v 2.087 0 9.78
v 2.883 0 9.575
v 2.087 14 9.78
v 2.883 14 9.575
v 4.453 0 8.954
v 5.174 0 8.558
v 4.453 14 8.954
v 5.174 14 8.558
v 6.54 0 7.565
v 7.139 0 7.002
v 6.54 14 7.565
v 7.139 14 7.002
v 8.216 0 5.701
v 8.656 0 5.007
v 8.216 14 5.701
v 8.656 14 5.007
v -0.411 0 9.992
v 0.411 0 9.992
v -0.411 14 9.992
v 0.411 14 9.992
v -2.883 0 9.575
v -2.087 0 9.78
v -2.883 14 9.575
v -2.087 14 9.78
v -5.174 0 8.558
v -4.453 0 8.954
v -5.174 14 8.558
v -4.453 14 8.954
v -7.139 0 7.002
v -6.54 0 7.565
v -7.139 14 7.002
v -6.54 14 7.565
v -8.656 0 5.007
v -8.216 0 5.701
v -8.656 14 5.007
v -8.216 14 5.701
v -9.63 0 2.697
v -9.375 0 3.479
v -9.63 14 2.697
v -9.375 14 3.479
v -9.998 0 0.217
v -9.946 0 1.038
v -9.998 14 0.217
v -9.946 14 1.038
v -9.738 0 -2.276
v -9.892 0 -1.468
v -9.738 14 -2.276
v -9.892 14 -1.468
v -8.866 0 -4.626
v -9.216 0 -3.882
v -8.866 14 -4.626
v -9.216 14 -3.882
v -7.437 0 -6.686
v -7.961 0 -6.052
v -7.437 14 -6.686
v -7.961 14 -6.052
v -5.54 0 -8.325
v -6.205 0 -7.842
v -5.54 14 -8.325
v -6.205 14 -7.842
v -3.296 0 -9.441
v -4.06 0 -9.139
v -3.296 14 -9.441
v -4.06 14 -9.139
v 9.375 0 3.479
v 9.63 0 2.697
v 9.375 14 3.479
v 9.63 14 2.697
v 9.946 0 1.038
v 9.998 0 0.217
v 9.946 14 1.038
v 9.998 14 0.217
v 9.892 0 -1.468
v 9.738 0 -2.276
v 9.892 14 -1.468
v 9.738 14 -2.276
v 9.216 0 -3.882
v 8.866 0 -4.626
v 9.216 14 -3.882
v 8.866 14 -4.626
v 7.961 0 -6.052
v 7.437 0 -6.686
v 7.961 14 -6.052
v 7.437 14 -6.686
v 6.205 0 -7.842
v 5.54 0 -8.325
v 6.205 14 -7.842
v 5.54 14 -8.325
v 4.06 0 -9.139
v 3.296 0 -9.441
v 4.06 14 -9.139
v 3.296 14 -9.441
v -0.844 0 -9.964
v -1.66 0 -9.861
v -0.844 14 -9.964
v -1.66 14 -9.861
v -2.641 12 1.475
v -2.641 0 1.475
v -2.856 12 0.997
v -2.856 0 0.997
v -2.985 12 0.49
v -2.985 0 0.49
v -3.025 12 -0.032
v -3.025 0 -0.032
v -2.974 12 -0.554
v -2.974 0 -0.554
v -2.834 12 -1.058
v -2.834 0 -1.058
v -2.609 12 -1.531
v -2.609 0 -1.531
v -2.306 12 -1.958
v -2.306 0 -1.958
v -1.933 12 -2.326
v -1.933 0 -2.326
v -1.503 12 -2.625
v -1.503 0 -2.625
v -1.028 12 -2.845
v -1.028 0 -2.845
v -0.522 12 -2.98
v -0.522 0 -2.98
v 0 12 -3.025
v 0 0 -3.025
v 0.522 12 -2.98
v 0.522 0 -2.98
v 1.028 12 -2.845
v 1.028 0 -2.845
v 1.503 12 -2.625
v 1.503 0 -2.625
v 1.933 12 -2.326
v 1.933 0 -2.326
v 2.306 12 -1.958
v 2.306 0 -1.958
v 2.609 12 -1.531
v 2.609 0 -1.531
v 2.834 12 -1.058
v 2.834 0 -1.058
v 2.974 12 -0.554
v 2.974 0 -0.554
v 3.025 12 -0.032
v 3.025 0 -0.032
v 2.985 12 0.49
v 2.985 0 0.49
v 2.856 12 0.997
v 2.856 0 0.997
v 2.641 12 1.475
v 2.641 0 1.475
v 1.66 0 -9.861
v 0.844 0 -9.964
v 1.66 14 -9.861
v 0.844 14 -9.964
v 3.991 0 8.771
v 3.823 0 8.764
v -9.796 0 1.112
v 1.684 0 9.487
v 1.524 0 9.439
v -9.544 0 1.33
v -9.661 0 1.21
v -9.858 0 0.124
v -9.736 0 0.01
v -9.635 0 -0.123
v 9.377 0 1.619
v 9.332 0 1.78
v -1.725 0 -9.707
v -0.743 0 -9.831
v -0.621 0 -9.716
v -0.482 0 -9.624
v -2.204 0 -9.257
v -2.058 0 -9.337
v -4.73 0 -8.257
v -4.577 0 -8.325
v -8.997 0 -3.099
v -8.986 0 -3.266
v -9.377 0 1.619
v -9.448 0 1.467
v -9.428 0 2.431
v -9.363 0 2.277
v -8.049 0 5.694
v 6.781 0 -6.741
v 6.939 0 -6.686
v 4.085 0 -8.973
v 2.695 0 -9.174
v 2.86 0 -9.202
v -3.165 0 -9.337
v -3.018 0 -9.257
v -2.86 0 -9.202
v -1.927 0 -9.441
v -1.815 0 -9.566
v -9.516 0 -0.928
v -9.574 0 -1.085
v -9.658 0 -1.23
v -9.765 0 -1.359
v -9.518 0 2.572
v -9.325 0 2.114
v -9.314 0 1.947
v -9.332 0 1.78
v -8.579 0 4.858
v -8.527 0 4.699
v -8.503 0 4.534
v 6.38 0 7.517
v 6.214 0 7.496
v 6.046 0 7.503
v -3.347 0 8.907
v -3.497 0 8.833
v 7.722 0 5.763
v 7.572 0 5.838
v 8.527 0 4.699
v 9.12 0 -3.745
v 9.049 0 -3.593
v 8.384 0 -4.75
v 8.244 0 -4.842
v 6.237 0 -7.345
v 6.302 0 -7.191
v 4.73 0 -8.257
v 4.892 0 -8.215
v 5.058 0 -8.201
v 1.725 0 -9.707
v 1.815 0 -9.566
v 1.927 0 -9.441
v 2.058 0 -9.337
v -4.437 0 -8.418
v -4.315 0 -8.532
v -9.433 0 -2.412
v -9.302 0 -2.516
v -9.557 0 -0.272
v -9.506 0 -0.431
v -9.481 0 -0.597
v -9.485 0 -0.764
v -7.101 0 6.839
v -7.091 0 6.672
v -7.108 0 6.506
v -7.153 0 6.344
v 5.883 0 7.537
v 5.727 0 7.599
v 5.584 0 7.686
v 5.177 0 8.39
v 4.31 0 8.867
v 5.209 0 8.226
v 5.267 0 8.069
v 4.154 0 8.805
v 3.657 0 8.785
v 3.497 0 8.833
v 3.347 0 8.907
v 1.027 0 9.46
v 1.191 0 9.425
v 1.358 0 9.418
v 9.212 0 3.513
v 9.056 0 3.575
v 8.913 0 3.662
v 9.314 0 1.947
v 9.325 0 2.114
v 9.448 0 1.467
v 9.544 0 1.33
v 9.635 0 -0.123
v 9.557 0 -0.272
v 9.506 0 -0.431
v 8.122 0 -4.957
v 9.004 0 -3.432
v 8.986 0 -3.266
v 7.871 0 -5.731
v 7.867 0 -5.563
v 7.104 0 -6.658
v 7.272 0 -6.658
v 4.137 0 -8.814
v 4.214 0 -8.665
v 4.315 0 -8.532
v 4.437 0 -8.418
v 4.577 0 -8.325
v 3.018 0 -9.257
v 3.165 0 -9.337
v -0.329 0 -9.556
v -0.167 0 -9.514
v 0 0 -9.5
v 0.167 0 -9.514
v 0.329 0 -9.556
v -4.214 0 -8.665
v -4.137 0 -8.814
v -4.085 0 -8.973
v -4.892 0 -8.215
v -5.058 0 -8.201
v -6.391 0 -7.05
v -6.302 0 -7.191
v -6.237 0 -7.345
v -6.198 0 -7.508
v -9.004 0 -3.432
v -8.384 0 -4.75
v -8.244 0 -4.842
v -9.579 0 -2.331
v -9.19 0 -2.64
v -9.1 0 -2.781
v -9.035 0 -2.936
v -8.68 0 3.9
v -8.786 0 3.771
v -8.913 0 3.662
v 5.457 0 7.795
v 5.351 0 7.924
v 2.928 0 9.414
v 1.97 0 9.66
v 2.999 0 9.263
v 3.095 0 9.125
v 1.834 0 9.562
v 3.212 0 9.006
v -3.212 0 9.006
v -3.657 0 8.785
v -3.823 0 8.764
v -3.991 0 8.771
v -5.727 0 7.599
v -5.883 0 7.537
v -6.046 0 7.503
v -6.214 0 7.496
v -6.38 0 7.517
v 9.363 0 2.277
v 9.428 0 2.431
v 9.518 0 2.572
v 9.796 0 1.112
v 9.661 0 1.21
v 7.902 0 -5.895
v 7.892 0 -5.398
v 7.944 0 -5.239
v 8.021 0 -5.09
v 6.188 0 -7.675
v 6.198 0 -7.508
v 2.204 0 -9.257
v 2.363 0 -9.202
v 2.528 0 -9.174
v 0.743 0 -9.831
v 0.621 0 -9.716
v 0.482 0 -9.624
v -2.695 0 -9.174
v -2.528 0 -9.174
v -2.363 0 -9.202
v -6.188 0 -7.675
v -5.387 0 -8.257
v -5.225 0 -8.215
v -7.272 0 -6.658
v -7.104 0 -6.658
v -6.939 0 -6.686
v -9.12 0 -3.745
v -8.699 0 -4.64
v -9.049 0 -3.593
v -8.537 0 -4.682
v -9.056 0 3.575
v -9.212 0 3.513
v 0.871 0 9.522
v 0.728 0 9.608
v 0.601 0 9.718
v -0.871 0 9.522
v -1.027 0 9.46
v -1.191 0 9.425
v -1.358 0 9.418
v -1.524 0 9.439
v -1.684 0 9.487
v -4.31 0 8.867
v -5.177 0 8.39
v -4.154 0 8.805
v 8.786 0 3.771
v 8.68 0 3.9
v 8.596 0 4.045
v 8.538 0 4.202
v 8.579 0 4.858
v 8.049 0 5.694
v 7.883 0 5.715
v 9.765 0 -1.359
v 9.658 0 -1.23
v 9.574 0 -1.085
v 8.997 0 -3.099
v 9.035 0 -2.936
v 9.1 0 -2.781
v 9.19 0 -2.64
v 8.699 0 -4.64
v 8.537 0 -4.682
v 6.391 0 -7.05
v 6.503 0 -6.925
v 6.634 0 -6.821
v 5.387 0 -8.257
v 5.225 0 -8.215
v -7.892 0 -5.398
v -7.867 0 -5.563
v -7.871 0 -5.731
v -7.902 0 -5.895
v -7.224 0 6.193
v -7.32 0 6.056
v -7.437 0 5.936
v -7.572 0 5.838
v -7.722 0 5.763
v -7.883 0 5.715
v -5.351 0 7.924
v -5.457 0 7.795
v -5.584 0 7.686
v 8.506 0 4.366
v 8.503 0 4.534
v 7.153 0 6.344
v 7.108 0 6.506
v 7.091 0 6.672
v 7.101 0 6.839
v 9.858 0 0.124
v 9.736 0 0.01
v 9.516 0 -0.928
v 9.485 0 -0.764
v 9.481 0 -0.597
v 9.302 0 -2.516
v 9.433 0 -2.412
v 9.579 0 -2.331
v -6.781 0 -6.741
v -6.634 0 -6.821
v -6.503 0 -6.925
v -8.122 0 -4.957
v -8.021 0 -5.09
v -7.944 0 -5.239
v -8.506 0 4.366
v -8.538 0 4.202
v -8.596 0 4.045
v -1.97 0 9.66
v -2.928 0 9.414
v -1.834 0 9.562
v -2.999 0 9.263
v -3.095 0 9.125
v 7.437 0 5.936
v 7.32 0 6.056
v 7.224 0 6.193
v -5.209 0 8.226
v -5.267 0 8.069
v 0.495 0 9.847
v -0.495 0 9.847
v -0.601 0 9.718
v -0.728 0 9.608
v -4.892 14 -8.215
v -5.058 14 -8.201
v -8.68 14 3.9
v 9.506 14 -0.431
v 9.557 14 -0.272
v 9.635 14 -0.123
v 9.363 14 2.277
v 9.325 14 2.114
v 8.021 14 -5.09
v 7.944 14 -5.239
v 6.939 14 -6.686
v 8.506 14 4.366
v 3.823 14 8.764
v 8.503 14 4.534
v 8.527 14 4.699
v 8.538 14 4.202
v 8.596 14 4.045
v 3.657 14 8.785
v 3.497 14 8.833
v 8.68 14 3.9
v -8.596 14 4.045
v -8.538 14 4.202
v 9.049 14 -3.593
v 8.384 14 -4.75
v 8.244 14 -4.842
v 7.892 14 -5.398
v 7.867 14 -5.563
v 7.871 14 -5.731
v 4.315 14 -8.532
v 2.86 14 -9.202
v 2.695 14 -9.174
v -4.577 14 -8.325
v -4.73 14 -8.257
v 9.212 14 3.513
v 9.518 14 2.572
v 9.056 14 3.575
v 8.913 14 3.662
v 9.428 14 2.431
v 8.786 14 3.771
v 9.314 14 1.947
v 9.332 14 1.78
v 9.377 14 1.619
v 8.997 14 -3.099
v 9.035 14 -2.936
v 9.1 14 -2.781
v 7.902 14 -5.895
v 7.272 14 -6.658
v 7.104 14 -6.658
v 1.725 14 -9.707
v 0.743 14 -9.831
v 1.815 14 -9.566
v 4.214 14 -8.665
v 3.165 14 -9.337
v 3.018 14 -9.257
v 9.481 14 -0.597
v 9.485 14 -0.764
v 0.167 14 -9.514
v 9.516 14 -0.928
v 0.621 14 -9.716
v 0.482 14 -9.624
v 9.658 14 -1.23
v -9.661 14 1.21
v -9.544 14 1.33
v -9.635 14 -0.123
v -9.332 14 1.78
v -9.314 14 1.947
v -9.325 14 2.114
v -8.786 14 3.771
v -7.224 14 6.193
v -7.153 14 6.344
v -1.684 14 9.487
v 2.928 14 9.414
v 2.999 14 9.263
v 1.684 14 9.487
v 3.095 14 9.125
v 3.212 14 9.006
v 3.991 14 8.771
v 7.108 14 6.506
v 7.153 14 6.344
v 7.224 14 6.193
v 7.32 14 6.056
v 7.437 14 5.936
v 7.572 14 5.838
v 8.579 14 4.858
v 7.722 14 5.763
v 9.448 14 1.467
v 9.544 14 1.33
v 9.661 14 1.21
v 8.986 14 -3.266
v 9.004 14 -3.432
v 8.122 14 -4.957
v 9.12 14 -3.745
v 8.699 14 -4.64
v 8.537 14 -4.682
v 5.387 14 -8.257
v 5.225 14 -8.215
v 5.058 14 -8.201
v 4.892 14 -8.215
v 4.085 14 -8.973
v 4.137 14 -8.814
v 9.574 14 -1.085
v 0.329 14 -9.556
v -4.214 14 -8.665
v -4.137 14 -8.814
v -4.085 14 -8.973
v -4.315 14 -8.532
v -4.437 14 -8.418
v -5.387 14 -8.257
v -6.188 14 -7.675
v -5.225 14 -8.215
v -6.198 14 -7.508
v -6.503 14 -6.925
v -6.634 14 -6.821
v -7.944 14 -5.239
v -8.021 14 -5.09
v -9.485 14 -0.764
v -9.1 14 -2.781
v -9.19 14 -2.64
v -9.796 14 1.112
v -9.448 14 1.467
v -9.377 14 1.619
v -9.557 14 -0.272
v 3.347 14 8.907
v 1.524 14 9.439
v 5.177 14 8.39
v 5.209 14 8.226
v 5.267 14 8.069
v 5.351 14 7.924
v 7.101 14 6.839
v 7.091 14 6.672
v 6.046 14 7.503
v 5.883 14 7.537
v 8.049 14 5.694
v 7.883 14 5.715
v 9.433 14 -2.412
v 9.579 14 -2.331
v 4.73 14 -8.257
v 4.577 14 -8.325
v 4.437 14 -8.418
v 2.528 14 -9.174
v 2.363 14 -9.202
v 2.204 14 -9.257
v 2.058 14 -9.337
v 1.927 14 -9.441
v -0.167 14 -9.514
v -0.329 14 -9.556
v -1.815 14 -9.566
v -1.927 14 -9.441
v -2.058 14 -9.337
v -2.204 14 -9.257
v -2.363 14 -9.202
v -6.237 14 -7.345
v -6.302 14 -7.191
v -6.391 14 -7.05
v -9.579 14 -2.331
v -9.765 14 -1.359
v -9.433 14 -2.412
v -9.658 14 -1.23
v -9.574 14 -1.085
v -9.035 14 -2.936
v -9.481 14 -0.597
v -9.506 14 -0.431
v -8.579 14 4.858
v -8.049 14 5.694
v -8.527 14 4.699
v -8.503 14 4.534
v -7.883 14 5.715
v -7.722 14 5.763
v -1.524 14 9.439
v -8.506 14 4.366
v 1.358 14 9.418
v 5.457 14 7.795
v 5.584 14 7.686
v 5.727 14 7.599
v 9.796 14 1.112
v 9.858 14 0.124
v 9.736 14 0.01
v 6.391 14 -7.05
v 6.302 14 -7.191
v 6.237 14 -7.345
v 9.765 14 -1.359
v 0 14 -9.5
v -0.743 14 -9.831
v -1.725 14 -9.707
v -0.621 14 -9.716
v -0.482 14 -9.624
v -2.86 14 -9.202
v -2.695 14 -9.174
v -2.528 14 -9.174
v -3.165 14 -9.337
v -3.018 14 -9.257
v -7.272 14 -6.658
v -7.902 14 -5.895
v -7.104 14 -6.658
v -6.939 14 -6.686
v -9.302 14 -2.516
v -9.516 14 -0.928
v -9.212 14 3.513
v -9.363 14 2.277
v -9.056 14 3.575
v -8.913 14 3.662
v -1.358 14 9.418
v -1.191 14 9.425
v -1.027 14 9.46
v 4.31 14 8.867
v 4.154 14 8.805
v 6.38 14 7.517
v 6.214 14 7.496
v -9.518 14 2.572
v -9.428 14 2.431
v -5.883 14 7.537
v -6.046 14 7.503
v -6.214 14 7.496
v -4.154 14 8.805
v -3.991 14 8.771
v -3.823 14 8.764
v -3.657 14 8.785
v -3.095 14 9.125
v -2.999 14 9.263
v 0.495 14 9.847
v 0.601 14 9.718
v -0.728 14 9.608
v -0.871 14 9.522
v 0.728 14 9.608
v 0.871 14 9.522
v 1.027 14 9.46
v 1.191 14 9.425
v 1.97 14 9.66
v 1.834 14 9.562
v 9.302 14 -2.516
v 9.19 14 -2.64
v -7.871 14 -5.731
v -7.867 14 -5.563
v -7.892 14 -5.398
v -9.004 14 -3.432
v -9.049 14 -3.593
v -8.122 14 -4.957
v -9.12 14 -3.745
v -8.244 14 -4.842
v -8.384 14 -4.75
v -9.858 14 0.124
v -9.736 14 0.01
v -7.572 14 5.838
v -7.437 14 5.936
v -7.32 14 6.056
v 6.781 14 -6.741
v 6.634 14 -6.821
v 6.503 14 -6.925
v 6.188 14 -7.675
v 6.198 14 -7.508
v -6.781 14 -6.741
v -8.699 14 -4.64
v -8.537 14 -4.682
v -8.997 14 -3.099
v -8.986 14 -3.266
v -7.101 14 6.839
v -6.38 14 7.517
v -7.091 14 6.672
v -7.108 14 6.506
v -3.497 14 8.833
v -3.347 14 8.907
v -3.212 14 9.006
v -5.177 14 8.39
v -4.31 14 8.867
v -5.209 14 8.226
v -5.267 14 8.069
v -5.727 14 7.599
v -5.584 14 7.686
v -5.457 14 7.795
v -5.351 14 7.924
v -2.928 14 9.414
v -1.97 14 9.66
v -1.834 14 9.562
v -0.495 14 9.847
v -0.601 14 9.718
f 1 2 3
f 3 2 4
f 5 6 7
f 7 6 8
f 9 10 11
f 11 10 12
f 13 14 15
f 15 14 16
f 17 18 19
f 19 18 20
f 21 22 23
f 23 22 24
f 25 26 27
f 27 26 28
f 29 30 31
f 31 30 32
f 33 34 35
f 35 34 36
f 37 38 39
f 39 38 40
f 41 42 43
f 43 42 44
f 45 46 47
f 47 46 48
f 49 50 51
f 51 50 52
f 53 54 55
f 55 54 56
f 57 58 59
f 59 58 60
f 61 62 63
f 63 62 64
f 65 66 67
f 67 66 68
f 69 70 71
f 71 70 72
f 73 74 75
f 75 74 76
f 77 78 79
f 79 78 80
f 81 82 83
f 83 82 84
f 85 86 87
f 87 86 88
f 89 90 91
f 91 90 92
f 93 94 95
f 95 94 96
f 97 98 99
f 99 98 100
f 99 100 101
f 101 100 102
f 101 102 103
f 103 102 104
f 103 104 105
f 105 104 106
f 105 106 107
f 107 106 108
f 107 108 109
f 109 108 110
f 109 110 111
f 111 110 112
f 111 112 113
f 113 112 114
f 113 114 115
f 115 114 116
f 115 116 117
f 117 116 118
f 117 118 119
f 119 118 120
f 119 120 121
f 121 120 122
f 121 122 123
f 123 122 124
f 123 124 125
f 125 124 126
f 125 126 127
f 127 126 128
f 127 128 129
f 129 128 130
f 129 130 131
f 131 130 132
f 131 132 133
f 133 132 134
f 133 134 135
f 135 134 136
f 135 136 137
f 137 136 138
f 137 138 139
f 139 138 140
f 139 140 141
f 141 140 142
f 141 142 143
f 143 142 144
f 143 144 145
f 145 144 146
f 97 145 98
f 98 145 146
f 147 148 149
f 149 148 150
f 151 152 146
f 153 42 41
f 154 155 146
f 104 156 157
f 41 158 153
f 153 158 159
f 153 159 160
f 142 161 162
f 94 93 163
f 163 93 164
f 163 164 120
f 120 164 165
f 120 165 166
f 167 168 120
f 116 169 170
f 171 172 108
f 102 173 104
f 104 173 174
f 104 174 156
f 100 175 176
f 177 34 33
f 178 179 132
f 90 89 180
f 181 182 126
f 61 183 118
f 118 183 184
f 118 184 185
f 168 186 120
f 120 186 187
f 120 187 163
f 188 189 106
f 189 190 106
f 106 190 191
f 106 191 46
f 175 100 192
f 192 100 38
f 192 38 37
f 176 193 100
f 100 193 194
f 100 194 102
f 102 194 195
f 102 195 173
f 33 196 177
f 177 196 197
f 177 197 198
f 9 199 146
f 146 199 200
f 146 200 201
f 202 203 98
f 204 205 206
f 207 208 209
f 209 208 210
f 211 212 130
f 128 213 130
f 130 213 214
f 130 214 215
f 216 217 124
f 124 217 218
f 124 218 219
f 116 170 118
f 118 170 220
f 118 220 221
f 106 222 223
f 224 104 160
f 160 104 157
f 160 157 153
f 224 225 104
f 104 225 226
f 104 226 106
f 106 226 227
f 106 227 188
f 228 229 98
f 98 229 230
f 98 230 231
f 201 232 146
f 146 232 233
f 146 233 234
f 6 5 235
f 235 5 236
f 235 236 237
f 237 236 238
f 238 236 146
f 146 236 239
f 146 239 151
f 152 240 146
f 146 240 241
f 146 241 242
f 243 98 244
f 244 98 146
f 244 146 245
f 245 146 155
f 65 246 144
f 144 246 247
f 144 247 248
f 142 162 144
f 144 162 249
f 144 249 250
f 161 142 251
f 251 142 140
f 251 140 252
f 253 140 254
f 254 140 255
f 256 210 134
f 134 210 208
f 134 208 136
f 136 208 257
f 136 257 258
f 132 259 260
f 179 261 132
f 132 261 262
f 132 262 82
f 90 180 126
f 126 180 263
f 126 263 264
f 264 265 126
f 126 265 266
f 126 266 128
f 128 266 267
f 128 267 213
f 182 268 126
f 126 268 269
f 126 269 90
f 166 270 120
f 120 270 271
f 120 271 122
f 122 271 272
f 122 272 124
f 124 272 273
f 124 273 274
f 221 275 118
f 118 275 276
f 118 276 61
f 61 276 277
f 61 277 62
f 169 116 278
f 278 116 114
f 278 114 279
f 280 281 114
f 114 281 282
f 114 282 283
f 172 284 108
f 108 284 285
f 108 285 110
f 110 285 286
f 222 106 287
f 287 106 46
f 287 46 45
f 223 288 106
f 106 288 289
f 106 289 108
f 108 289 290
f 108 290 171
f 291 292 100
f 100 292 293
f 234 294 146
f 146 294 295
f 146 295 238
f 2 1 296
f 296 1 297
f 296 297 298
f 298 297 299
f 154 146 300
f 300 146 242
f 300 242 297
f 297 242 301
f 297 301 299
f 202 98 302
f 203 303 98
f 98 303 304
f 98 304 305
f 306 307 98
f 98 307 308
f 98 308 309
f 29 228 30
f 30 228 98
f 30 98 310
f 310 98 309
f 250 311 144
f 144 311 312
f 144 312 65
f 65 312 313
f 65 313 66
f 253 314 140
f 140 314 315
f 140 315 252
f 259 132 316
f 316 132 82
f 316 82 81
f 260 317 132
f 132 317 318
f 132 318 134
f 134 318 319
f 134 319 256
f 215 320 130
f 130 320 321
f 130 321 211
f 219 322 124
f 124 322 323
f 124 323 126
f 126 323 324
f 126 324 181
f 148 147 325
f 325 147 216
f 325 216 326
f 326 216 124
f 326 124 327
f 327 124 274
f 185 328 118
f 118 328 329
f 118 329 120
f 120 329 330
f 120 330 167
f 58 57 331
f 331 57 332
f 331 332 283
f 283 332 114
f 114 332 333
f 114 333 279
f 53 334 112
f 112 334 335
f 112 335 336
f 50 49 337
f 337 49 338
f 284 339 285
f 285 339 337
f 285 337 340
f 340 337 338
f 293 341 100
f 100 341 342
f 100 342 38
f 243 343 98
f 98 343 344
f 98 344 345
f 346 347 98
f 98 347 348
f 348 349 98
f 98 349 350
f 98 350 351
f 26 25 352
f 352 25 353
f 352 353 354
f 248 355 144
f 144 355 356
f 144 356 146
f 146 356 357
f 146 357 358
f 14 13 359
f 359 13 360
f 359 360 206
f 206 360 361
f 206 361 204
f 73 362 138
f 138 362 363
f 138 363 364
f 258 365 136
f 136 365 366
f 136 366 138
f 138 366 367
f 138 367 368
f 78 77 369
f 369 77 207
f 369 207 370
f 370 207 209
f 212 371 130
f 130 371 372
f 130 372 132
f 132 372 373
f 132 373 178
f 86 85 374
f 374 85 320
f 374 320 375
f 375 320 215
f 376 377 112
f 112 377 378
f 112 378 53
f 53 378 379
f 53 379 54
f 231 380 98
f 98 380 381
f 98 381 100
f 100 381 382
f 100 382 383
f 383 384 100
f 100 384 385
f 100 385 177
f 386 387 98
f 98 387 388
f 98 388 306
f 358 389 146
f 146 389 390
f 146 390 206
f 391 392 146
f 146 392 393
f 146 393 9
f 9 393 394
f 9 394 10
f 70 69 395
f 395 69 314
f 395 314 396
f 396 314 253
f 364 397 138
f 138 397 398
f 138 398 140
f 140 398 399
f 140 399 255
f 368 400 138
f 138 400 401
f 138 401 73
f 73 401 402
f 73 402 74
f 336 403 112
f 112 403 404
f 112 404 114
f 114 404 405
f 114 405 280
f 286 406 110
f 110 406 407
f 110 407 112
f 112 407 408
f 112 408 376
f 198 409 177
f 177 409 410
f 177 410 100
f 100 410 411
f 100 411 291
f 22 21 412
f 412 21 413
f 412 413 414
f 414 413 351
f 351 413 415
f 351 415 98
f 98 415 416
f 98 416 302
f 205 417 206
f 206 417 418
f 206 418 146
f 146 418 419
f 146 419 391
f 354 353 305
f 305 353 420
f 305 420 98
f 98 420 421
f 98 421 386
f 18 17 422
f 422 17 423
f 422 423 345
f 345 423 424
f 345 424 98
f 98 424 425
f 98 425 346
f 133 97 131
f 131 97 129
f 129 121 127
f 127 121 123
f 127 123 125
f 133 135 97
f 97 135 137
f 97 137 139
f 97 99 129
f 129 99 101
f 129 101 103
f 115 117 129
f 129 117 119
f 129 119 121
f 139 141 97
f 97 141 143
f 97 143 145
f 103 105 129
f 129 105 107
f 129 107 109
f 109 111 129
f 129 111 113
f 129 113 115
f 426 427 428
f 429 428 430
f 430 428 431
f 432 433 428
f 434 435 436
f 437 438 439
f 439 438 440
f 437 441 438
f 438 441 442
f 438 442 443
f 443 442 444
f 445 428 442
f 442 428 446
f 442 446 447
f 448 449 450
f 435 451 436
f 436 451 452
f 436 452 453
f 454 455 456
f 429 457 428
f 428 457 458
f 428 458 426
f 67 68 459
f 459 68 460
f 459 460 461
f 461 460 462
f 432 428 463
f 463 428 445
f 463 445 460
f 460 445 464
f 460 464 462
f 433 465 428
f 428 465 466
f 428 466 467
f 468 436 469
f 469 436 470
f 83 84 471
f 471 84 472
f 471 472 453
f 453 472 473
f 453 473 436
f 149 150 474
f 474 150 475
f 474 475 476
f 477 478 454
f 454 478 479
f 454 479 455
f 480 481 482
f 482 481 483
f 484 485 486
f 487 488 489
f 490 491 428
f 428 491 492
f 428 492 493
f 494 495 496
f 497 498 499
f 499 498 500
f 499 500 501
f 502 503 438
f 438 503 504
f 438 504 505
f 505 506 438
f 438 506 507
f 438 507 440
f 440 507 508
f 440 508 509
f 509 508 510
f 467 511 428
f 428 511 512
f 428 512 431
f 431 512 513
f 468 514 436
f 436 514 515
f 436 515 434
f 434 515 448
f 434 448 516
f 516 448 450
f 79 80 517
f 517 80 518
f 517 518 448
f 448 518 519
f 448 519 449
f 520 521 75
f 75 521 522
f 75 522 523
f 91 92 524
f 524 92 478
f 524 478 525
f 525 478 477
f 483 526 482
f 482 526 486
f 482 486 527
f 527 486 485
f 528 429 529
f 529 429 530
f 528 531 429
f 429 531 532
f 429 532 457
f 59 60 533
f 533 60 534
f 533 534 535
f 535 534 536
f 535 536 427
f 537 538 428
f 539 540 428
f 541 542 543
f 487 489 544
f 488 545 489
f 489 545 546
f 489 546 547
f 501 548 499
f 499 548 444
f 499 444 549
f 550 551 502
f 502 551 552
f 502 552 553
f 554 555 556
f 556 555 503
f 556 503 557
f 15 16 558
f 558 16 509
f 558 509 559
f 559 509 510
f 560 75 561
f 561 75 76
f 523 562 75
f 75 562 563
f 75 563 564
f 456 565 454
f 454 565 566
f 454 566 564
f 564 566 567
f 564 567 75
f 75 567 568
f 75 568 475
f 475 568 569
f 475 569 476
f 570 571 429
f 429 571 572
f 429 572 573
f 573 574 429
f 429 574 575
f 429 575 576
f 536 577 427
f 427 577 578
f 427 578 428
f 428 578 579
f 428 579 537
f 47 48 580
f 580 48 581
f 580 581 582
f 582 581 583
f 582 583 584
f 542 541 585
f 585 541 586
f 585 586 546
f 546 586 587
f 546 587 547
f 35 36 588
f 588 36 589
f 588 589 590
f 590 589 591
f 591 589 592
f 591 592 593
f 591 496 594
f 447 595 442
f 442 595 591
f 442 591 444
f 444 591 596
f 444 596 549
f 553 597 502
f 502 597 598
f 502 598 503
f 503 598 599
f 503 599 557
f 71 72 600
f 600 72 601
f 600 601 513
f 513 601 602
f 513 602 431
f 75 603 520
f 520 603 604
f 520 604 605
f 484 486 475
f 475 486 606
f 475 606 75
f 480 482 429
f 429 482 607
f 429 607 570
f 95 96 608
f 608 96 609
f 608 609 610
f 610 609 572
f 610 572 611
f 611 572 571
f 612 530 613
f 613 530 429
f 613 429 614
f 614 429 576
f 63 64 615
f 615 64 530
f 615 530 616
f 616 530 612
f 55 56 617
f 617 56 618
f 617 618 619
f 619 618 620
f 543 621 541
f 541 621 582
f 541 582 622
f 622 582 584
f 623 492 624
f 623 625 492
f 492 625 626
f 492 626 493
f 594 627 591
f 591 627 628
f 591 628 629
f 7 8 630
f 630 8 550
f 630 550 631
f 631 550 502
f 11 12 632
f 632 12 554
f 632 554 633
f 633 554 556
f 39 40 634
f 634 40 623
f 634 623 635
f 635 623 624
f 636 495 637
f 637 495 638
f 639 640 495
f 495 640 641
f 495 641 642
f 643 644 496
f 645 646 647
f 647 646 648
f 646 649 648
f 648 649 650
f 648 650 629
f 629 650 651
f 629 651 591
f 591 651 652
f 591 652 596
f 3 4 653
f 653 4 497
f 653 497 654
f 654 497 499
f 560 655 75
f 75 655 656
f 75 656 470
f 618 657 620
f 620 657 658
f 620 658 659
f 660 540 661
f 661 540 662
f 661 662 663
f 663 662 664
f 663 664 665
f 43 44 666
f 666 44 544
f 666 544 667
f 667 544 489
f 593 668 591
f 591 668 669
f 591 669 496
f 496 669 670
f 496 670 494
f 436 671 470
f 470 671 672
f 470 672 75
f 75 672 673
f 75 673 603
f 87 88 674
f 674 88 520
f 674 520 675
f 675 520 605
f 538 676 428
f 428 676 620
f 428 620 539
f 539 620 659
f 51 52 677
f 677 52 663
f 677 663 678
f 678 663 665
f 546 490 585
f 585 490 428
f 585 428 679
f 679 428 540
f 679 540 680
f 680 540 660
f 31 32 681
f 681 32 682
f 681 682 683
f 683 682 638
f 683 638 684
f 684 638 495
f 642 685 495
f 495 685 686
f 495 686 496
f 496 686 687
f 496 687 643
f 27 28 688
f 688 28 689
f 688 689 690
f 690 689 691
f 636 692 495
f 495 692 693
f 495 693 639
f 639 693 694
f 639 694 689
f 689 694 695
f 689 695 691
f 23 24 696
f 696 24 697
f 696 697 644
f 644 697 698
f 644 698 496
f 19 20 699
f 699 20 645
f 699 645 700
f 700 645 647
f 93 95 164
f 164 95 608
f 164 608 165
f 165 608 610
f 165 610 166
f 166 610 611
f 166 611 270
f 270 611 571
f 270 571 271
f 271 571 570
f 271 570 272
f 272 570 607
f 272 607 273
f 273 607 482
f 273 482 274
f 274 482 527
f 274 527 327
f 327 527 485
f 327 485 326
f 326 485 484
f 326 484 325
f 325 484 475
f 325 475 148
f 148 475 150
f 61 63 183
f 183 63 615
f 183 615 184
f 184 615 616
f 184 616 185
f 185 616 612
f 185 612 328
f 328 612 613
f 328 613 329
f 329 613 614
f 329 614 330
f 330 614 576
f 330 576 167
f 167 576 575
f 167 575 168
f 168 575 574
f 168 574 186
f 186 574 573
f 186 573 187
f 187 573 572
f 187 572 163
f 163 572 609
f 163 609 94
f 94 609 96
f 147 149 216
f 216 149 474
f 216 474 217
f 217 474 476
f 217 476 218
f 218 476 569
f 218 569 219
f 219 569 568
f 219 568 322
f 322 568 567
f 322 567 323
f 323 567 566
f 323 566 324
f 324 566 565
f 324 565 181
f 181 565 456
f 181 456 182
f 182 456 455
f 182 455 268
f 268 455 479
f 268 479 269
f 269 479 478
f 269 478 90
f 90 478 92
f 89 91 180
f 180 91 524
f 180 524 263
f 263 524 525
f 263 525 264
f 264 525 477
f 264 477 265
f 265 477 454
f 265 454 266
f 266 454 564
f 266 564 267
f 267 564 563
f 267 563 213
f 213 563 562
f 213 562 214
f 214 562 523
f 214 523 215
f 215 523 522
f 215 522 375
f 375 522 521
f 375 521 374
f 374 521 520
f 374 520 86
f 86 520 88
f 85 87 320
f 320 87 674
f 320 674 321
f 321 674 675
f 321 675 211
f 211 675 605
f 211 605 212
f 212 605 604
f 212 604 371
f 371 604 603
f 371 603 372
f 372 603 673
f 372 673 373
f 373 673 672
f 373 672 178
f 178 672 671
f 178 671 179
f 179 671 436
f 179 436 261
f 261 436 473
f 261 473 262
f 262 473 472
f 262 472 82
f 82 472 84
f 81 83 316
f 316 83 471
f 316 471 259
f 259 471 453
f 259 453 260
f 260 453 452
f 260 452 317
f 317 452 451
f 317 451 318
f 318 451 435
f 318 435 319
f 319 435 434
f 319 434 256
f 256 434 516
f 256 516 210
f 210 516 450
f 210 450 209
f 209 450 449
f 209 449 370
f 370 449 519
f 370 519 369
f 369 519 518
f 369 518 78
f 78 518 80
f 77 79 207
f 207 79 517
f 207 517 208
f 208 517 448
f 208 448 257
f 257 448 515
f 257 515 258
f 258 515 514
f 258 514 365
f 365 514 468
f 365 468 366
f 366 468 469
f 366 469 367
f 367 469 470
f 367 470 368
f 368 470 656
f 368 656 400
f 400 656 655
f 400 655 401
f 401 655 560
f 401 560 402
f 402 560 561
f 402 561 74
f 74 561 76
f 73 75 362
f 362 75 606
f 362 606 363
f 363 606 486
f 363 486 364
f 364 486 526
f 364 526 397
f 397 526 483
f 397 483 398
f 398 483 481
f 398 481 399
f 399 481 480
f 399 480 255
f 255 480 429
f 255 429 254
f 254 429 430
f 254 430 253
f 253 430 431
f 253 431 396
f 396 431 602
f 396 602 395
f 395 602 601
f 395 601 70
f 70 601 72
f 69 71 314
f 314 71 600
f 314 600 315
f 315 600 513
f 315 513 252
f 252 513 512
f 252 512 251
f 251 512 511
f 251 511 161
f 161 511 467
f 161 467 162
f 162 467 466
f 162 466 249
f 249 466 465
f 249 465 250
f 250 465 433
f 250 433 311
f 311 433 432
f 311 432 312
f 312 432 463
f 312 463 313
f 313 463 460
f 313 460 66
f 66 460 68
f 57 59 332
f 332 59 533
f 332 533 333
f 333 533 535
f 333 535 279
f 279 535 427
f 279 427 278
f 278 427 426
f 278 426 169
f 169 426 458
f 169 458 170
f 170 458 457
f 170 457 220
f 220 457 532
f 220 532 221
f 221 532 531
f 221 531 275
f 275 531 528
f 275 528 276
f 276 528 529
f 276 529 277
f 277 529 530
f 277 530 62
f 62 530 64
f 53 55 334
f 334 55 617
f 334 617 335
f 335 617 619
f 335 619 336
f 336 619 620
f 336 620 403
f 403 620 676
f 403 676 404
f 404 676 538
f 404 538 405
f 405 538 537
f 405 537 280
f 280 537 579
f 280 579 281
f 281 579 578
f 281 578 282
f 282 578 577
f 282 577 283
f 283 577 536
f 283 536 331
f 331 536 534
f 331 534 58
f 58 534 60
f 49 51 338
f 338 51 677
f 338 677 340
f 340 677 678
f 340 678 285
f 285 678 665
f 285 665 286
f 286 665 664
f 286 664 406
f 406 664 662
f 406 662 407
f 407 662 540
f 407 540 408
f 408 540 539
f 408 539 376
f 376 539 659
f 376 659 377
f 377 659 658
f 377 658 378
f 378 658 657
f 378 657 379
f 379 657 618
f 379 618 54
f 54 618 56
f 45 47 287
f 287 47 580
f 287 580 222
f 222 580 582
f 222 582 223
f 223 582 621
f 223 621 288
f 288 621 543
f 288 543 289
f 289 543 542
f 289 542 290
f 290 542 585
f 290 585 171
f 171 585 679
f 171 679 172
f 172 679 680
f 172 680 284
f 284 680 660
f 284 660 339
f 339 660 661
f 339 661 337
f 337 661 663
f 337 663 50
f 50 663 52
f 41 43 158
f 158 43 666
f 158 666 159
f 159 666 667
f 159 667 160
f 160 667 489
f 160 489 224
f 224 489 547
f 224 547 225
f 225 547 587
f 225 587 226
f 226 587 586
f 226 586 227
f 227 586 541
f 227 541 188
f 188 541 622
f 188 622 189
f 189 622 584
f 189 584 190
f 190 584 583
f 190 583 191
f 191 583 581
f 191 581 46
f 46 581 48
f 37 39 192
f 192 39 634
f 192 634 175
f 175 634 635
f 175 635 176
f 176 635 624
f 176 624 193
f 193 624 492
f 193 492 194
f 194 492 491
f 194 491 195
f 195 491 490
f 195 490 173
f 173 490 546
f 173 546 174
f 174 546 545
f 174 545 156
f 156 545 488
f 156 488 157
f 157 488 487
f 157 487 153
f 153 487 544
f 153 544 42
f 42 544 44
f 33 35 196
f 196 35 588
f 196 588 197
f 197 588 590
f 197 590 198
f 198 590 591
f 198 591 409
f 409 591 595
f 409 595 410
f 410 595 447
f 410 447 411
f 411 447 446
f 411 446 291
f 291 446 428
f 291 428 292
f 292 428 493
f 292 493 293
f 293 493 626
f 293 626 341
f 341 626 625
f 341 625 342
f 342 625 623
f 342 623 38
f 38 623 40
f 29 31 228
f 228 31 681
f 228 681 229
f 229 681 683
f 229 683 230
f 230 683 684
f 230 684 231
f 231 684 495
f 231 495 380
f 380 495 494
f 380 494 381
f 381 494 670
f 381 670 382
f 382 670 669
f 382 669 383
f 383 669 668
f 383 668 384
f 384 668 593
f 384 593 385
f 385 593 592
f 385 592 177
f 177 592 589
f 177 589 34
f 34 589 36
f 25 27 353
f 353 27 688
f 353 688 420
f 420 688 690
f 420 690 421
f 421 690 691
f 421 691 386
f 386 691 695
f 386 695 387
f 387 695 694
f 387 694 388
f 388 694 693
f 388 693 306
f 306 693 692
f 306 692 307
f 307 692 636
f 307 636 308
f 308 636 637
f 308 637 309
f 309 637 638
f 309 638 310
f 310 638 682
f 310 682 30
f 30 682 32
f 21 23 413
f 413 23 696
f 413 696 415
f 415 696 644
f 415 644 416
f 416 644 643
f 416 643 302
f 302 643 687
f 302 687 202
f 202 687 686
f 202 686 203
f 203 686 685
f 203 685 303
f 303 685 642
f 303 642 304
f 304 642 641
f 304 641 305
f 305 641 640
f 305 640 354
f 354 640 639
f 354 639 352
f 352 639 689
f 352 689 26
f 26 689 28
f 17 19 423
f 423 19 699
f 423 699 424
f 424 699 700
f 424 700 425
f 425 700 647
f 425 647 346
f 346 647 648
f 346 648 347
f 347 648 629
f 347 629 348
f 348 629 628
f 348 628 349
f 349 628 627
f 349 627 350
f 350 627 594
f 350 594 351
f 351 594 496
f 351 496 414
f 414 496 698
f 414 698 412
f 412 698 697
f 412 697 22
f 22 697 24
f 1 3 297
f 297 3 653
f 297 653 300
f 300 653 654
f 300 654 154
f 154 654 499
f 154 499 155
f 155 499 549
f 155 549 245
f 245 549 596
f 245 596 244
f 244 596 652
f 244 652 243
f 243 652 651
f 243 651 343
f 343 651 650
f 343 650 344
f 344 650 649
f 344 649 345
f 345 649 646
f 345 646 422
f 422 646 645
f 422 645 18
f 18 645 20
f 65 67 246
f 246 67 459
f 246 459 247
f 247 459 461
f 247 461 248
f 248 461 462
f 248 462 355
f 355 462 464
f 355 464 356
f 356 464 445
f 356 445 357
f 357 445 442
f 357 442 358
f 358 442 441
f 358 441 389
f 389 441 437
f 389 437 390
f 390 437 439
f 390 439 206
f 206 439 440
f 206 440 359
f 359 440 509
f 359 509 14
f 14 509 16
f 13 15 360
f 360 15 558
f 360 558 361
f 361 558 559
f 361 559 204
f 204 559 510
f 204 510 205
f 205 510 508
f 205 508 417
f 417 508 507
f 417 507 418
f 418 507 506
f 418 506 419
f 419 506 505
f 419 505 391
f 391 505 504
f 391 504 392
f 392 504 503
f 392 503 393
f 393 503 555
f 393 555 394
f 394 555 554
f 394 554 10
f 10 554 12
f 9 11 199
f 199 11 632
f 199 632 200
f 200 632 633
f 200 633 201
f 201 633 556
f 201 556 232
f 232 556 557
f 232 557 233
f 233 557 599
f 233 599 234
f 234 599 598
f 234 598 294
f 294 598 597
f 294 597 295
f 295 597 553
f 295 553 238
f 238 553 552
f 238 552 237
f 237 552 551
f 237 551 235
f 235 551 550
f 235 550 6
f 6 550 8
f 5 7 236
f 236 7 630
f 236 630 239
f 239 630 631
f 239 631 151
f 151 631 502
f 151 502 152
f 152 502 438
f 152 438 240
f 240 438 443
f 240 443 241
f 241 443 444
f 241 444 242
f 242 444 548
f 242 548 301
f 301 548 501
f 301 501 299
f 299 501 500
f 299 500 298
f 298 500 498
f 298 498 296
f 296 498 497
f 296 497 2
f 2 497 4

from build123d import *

# Parameters (mm, degrees)
ESQUISSE1_R                  = 10
BOSS_EXTRU_1_DEPTH           = 12
ESQUISSE2_R                  = 10
BOSS_EXTRU_2_DEPTH           = 2
ESQUISSE3_R                  = 1
ENL_V_MAT_EXTRU_1_DEPTH      = 15
R_P_TITION_CIRCULAIRE1_COUNT = 25


with BuildPart() as part:
    # Esquisse1 → Boss.-Extru.1 (new body)
    with BuildSketch(Plane(origin=(0, 0, 0), x_dir=(1, 0, 0), z_dir=(0, 1, 0))):
        Circle(ESQUISSE1_R)
        with BuildLine():
            Line((2.641022529, -1.475), (-2.641022529, -1.475))
            ThreePointArc((-2.641022529, -1.475), (0, 3.025), (2.641022529, -1.475))
        make_face(mode=Mode.SUBTRACT)
    extrude(amount=BOSS_EXTRU_1_DEPTH)

    # Esquisse2 → Boss.-Extru.2 (add)
    with BuildSketch(Plane(origin=(0, 12, 0), x_dir=(1, 0, 0), z_dir=(0, 1, 0))):
        Circle(ESQUISSE2_R)
    extrude(amount=BOSS_EXTRU_2_DEPTH)

    # Esquisse3 → Enlèv. mat.-Extru.1 (cut, through all)
    with BuildSketch(Plane(origin=(0, 14, 0), x_dir=(1, 0, 0), z_dir=(0, 1, 0))):
        with Locations((0, 10.5)):
            Circle(ESQUISSE3_R)
    enl_v_mat_extru_1 = extrude(amount=-ENL_V_MAT_EXTRU_1_DEPTH, mode=Mode.SUBTRACT)

    # Répétition circulaire1: Enlèv. mat.-Extru.1 ×25 about axis
    r_p_tition_circulaire1_axis = Axis((0, 0, 0), (0, 1, 0))
    for i in range(1, R_P_TITION_CIRCULAIRE1_COUNT):
        add(enl_v_mat_extru_1.rotate(r_p_tition_circulaire1_axis, i * 360 / R_P_TITION_CIRCULAIRE1_COUNT), mode=Mode.SUBTRACT)


solid = part.part
